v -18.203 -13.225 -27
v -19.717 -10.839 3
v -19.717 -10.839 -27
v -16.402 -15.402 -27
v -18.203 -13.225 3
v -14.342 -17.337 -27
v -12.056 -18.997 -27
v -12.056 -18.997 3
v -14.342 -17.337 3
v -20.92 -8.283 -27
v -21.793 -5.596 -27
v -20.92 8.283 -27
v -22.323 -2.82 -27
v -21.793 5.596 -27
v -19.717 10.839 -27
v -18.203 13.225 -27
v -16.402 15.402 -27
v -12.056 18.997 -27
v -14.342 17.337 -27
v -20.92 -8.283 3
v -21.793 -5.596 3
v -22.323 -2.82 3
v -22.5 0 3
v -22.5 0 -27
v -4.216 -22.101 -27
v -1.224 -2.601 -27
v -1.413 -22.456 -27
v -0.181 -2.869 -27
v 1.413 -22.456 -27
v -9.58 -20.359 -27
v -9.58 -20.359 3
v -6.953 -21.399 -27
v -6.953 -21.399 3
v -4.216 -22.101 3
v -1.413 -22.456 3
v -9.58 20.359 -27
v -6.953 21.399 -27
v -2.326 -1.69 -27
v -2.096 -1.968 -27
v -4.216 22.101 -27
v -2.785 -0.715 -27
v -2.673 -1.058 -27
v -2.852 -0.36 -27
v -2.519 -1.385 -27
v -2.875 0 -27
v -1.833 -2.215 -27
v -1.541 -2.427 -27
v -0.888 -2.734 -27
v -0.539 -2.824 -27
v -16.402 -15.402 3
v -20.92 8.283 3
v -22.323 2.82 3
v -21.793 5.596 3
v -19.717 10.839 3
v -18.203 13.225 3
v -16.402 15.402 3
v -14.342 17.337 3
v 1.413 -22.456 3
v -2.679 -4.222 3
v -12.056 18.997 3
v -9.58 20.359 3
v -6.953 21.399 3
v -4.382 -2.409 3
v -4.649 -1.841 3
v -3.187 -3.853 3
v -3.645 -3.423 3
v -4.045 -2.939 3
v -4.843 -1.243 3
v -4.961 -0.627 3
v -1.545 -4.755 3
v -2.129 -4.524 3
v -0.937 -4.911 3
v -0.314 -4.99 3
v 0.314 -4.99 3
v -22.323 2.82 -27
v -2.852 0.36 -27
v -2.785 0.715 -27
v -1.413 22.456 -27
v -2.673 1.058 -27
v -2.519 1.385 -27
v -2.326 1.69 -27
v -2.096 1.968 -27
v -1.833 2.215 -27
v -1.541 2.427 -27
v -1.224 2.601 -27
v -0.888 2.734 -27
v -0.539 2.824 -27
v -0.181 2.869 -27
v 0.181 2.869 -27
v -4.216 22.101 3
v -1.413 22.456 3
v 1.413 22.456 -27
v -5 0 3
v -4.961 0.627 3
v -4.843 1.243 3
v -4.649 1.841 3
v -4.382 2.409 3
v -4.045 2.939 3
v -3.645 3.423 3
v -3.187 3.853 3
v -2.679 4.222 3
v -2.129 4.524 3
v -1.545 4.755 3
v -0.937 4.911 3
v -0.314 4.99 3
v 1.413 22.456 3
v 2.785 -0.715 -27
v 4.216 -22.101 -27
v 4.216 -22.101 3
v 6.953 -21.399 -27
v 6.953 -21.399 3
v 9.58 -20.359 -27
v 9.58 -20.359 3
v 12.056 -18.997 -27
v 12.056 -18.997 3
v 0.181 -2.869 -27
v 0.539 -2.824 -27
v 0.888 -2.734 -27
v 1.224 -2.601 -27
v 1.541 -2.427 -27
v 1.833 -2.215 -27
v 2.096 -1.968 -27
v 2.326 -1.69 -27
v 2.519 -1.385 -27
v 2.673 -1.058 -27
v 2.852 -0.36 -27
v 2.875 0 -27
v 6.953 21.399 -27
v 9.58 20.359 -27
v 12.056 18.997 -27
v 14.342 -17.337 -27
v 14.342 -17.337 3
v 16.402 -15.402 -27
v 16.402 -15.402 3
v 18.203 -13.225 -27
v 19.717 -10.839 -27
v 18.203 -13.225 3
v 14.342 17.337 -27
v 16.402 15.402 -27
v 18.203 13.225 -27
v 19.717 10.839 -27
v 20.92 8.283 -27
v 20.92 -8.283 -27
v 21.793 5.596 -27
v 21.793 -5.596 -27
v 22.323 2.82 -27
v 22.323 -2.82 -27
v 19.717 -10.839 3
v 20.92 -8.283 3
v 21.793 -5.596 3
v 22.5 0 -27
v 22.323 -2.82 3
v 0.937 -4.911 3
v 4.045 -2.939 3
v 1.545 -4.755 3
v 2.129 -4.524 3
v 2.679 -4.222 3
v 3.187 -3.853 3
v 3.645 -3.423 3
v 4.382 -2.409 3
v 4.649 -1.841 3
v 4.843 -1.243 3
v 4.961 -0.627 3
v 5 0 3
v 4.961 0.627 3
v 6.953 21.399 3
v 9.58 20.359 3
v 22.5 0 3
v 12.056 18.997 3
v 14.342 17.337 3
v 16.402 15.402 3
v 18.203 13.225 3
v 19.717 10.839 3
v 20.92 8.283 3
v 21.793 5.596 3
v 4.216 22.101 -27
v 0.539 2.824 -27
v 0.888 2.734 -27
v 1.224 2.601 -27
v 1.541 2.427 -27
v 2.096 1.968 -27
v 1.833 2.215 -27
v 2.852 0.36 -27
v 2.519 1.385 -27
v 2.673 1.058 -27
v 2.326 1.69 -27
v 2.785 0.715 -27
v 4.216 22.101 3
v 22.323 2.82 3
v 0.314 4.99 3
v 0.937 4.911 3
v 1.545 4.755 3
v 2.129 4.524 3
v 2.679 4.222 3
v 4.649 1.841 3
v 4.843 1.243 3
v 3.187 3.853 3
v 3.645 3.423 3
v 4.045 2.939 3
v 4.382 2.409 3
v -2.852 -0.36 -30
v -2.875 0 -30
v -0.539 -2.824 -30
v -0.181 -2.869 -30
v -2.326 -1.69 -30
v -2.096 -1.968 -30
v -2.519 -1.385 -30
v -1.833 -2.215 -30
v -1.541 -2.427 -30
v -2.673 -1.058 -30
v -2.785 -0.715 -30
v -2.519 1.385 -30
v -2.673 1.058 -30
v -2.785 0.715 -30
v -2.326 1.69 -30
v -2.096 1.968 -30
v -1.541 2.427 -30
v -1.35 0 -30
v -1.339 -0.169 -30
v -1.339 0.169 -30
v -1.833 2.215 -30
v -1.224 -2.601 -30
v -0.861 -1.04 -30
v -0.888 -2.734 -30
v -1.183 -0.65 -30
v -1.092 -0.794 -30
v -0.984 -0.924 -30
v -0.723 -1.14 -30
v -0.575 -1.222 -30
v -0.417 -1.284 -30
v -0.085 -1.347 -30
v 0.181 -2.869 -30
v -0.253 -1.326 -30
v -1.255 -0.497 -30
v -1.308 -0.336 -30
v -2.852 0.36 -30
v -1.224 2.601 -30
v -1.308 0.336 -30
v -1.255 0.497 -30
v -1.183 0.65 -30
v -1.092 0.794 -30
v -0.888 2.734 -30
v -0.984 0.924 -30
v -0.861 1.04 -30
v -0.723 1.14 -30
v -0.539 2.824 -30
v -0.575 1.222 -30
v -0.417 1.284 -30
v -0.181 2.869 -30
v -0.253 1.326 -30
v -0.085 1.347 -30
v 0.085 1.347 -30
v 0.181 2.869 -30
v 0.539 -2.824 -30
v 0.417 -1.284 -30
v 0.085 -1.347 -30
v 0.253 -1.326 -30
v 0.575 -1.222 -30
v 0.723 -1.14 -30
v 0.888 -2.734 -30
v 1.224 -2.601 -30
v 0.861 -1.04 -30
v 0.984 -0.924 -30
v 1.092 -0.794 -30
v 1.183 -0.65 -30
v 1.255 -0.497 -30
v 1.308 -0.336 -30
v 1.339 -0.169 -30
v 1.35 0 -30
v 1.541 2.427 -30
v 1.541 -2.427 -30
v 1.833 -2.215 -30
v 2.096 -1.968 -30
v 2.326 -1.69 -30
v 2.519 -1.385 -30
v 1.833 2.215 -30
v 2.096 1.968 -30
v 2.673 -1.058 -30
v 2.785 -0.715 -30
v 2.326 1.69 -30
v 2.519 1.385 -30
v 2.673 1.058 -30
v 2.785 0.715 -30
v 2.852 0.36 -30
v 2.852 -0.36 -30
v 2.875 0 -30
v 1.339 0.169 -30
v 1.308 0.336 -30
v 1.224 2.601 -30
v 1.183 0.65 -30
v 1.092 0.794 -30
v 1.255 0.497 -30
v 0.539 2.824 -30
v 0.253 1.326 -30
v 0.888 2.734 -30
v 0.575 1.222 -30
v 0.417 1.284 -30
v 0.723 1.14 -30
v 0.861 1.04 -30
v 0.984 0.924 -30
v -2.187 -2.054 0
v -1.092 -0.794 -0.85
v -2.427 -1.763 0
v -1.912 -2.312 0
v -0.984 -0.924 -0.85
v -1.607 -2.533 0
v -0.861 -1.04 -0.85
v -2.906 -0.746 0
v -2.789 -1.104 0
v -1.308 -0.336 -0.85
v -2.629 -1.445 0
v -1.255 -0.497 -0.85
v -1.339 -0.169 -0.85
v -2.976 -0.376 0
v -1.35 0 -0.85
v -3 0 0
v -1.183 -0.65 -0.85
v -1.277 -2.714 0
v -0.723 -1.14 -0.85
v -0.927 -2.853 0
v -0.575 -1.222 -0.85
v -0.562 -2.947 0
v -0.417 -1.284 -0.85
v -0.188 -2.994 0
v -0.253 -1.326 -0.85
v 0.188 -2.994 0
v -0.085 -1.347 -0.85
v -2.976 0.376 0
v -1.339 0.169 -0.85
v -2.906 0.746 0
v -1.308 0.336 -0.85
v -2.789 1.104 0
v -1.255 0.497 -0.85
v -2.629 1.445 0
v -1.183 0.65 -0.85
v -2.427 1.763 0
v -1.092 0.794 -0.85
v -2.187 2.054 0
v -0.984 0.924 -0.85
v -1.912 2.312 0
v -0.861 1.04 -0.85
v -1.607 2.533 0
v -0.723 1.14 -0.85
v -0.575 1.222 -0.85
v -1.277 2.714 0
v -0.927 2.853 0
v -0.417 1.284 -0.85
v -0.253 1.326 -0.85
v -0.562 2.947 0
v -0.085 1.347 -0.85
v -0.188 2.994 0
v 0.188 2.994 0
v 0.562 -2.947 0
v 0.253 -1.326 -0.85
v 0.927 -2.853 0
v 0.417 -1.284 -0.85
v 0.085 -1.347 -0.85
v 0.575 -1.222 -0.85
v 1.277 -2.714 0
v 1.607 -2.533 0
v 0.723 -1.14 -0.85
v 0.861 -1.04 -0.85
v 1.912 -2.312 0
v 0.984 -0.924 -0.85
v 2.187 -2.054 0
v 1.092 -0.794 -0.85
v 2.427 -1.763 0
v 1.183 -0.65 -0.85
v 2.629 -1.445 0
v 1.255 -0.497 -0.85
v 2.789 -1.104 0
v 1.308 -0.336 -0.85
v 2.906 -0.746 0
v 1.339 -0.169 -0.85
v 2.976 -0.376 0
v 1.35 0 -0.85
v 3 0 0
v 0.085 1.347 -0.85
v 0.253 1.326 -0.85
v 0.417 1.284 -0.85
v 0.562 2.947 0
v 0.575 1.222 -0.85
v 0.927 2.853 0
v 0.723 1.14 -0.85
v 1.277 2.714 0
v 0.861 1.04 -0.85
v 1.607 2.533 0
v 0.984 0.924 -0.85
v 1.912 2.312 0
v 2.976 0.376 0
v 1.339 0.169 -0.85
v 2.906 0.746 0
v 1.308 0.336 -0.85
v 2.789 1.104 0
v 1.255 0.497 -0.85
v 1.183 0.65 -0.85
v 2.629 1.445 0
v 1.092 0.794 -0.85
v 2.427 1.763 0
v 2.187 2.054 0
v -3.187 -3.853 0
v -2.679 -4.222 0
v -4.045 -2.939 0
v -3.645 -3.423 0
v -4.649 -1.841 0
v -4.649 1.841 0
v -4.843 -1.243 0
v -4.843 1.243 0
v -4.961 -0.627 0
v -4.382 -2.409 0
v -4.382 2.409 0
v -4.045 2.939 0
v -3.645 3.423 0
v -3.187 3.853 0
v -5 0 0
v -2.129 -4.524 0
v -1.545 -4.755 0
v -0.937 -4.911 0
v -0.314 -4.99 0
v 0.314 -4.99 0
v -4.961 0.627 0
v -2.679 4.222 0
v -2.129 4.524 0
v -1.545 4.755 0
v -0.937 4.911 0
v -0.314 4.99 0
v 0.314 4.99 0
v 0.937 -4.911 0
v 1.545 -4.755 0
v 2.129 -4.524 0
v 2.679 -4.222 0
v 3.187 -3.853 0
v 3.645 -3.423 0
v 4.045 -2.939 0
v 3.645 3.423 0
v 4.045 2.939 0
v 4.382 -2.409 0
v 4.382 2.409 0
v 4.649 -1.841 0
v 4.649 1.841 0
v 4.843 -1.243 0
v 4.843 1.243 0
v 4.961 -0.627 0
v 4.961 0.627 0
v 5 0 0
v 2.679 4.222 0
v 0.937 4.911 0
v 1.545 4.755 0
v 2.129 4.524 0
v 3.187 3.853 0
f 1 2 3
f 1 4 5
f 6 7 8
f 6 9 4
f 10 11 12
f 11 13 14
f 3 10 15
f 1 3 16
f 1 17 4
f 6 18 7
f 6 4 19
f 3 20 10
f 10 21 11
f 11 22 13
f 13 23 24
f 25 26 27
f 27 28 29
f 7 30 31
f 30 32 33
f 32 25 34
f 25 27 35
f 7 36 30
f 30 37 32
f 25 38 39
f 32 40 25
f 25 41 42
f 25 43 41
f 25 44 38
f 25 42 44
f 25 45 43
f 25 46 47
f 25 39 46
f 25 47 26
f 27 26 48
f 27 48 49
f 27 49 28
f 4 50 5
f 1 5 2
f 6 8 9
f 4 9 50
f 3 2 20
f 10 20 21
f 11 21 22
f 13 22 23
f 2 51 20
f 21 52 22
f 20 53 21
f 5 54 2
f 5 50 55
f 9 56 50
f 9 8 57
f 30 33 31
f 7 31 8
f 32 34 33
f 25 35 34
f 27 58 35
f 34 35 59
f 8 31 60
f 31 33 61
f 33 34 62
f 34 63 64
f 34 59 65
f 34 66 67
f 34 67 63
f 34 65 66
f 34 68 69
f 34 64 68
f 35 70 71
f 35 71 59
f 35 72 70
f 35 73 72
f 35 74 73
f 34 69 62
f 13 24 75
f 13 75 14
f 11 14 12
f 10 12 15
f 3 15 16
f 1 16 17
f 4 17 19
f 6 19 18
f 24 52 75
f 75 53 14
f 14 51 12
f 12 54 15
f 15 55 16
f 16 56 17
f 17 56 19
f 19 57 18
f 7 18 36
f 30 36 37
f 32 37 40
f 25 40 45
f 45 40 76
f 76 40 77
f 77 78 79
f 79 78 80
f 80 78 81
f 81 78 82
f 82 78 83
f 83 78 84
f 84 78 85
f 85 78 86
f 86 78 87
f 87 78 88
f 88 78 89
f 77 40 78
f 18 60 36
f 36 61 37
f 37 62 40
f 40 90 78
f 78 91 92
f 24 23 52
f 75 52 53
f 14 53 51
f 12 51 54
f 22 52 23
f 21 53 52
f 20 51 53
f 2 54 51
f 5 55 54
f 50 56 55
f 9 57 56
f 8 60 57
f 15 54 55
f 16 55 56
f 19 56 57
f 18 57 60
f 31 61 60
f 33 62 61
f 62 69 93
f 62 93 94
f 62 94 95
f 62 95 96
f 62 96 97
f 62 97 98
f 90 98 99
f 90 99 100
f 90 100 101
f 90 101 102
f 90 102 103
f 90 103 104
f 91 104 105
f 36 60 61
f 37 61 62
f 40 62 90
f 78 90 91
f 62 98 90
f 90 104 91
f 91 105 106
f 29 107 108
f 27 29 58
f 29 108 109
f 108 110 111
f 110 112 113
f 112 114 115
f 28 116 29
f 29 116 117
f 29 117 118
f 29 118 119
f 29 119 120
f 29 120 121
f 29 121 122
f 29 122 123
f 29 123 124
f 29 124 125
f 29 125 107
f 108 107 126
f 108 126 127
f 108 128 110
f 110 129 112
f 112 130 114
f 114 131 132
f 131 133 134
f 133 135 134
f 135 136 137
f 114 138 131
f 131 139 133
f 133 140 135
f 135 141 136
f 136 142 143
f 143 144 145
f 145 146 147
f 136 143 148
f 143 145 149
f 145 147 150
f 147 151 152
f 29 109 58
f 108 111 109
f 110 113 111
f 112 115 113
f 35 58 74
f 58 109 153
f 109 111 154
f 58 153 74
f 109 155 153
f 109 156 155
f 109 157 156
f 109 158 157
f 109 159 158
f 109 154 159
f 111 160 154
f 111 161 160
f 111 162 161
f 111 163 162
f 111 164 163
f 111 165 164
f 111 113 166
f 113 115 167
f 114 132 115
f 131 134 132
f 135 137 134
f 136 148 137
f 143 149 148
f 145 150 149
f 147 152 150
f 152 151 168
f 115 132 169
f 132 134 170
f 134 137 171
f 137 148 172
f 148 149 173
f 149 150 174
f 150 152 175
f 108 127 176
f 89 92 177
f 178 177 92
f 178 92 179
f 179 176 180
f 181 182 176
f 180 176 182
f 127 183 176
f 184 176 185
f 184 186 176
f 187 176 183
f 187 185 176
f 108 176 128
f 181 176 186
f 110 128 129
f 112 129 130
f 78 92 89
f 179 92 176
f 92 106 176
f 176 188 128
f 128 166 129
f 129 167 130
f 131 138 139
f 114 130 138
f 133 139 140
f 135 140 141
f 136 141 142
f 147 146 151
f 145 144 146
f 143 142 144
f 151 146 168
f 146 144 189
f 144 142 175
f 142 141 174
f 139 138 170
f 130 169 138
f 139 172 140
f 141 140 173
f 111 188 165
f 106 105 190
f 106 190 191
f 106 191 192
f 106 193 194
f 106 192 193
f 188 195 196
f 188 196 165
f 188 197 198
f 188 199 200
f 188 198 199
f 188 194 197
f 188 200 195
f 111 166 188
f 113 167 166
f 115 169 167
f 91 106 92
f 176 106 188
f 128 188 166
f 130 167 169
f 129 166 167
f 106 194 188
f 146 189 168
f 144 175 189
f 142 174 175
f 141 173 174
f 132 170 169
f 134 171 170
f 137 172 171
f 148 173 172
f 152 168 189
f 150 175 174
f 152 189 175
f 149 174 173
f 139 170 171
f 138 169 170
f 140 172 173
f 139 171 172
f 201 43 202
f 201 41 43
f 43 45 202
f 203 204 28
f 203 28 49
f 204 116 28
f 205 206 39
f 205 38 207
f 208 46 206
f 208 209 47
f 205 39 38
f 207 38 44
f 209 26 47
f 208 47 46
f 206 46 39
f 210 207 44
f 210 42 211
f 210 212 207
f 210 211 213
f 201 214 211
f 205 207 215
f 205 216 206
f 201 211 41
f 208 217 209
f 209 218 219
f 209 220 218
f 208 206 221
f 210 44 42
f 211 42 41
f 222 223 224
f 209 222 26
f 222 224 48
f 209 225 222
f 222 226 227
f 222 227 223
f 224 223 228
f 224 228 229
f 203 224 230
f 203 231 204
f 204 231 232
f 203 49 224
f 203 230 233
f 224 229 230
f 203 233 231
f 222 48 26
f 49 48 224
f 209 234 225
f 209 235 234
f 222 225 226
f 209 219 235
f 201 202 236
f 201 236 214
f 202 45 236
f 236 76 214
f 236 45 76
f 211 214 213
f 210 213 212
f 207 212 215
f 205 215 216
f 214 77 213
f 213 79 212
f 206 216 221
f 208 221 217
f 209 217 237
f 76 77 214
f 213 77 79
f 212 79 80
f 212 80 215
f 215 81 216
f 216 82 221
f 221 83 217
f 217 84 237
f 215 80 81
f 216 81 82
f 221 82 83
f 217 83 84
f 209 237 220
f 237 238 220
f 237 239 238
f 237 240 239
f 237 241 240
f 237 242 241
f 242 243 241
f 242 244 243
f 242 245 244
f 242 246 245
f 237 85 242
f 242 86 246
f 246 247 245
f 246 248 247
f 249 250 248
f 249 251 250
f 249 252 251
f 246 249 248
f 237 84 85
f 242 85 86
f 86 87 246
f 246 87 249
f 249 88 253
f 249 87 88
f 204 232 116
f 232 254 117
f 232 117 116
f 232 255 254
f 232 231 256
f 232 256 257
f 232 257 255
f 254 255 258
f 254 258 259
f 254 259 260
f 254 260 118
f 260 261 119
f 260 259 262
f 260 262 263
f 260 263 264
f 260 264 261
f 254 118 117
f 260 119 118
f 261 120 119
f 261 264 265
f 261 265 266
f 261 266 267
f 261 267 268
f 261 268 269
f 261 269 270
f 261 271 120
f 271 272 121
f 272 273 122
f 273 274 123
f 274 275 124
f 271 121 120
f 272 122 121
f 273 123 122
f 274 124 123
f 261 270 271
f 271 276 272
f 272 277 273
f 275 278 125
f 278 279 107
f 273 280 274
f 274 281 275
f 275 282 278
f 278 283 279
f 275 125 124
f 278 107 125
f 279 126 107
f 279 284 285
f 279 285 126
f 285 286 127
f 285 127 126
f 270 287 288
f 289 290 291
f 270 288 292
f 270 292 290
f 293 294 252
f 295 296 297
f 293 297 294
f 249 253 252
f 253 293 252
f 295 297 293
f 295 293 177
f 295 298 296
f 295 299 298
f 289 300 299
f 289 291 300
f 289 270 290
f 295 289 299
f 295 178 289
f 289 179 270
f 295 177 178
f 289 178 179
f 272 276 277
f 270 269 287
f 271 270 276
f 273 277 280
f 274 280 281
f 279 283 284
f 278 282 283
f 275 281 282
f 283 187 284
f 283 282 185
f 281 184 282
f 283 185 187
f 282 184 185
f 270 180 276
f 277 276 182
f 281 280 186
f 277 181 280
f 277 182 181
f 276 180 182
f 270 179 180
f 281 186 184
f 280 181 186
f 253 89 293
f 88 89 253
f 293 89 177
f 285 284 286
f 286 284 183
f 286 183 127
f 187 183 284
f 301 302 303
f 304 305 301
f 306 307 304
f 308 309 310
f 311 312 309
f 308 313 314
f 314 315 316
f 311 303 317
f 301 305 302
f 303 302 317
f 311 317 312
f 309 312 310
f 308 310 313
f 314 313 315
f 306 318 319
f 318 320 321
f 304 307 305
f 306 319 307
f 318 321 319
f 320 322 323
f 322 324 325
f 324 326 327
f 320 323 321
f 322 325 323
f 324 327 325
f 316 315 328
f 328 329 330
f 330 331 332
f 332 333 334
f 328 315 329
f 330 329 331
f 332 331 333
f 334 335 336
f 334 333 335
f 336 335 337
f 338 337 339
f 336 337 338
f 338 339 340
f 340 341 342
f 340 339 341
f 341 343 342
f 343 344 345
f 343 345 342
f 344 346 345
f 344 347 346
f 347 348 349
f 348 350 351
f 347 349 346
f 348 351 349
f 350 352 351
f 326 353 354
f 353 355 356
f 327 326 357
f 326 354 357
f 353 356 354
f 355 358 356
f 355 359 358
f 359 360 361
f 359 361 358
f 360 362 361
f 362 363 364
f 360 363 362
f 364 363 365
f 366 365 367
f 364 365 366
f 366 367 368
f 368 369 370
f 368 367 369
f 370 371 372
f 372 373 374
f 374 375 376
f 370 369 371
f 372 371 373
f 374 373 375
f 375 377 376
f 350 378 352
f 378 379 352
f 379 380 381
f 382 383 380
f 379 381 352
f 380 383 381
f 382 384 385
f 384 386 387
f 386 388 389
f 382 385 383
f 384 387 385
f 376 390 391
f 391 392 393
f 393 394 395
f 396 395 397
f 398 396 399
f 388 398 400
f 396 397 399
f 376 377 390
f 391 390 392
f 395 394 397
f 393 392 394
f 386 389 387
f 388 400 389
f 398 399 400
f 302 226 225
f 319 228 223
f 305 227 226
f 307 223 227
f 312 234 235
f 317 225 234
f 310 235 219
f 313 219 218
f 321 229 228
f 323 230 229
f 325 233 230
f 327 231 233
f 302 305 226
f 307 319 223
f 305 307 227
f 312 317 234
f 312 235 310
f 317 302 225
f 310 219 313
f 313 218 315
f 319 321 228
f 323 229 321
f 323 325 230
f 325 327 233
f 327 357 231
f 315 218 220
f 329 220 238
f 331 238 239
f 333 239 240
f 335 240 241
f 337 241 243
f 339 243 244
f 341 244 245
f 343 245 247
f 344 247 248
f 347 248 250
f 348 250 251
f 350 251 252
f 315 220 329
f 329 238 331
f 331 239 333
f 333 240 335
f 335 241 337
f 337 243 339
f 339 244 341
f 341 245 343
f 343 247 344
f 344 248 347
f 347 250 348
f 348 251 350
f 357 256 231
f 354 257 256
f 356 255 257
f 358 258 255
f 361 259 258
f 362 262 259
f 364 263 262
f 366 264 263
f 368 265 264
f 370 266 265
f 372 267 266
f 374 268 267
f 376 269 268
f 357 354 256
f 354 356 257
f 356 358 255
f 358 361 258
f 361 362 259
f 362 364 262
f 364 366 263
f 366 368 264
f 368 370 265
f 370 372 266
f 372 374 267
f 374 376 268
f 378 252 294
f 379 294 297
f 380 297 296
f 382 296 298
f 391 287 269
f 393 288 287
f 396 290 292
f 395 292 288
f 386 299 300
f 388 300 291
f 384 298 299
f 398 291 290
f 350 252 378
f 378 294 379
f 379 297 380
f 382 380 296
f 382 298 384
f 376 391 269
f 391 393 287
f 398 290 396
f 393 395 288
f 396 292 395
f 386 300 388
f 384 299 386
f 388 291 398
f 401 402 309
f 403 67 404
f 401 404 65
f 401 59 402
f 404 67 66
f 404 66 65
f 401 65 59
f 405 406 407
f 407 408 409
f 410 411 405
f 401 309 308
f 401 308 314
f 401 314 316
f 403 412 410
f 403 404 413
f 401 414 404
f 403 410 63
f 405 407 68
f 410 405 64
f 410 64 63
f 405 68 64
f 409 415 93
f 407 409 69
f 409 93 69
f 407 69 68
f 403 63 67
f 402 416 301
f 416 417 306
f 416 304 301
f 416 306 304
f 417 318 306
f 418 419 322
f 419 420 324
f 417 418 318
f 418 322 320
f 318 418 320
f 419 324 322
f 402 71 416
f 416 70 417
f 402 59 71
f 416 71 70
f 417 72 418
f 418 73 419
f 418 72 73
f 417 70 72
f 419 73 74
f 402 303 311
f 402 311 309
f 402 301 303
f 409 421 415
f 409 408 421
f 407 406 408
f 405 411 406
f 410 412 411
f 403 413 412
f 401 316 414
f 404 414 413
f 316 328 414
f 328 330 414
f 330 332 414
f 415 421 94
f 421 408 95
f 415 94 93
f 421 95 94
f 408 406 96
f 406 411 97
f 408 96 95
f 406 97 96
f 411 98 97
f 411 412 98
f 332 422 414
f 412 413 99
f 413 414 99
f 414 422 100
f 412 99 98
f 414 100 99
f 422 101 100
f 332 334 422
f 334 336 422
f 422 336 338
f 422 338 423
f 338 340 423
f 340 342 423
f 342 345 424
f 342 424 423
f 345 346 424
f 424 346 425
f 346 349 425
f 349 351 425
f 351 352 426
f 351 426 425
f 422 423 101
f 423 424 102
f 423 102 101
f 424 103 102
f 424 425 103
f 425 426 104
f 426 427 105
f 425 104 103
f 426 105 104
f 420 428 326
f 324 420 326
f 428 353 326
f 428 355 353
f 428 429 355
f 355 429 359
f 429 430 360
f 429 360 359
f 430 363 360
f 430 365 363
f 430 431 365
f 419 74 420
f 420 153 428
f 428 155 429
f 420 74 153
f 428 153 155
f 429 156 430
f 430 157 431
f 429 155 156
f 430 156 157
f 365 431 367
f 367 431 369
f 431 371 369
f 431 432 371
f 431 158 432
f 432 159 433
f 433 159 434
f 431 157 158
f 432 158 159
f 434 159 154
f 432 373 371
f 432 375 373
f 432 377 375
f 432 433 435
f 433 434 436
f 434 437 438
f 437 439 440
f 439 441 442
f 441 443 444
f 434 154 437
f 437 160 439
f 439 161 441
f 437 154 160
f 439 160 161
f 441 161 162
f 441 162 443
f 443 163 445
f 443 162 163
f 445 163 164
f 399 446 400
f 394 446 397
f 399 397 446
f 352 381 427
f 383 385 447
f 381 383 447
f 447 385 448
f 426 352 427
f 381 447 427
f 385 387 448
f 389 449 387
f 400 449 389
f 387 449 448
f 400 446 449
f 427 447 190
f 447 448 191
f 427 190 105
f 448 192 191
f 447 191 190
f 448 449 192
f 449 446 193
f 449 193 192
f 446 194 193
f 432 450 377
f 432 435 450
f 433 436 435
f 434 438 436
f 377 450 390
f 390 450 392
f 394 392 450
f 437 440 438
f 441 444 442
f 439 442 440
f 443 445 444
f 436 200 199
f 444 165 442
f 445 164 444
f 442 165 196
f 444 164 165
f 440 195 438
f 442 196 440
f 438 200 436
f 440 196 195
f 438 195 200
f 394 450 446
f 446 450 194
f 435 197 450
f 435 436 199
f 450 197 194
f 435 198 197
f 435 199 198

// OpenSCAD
$fn = 50;

difference() {
	union() {
		translate(v = [0, 0, -27.0]) {
			cylinder(h = 30, r = 22.5);
		}
		#translate(v = [0, 0, -30.0]) {
			cylinder(h = 30, r = 2.875);
		}
	}
	union() {
		translate(v = [0, 0, 0]) {
			rotate(a = [0, 0, 0]) {
				difference() {
					union() {
						translate(v = [0, 0, -30.0]) {
							cylinder(h = 30, r = 1.0);
						}
						translate(v = [0, 0, -0.85]) {
							cylinder(h = 0.85, r1 = 1.35, r2 = 3.0);
						}
						translate(v = [0, 0, -30.0]) {
							cylinder(h = 30, r = 1.35);
						}
						translate(v = [0, 0, -30.0]) {
							cylinder(h = 30, r = 1.0);
						}
					}
					union();
				}
			}
		}
		#cylinder(h = 3, r = 5.0);
	}
}
